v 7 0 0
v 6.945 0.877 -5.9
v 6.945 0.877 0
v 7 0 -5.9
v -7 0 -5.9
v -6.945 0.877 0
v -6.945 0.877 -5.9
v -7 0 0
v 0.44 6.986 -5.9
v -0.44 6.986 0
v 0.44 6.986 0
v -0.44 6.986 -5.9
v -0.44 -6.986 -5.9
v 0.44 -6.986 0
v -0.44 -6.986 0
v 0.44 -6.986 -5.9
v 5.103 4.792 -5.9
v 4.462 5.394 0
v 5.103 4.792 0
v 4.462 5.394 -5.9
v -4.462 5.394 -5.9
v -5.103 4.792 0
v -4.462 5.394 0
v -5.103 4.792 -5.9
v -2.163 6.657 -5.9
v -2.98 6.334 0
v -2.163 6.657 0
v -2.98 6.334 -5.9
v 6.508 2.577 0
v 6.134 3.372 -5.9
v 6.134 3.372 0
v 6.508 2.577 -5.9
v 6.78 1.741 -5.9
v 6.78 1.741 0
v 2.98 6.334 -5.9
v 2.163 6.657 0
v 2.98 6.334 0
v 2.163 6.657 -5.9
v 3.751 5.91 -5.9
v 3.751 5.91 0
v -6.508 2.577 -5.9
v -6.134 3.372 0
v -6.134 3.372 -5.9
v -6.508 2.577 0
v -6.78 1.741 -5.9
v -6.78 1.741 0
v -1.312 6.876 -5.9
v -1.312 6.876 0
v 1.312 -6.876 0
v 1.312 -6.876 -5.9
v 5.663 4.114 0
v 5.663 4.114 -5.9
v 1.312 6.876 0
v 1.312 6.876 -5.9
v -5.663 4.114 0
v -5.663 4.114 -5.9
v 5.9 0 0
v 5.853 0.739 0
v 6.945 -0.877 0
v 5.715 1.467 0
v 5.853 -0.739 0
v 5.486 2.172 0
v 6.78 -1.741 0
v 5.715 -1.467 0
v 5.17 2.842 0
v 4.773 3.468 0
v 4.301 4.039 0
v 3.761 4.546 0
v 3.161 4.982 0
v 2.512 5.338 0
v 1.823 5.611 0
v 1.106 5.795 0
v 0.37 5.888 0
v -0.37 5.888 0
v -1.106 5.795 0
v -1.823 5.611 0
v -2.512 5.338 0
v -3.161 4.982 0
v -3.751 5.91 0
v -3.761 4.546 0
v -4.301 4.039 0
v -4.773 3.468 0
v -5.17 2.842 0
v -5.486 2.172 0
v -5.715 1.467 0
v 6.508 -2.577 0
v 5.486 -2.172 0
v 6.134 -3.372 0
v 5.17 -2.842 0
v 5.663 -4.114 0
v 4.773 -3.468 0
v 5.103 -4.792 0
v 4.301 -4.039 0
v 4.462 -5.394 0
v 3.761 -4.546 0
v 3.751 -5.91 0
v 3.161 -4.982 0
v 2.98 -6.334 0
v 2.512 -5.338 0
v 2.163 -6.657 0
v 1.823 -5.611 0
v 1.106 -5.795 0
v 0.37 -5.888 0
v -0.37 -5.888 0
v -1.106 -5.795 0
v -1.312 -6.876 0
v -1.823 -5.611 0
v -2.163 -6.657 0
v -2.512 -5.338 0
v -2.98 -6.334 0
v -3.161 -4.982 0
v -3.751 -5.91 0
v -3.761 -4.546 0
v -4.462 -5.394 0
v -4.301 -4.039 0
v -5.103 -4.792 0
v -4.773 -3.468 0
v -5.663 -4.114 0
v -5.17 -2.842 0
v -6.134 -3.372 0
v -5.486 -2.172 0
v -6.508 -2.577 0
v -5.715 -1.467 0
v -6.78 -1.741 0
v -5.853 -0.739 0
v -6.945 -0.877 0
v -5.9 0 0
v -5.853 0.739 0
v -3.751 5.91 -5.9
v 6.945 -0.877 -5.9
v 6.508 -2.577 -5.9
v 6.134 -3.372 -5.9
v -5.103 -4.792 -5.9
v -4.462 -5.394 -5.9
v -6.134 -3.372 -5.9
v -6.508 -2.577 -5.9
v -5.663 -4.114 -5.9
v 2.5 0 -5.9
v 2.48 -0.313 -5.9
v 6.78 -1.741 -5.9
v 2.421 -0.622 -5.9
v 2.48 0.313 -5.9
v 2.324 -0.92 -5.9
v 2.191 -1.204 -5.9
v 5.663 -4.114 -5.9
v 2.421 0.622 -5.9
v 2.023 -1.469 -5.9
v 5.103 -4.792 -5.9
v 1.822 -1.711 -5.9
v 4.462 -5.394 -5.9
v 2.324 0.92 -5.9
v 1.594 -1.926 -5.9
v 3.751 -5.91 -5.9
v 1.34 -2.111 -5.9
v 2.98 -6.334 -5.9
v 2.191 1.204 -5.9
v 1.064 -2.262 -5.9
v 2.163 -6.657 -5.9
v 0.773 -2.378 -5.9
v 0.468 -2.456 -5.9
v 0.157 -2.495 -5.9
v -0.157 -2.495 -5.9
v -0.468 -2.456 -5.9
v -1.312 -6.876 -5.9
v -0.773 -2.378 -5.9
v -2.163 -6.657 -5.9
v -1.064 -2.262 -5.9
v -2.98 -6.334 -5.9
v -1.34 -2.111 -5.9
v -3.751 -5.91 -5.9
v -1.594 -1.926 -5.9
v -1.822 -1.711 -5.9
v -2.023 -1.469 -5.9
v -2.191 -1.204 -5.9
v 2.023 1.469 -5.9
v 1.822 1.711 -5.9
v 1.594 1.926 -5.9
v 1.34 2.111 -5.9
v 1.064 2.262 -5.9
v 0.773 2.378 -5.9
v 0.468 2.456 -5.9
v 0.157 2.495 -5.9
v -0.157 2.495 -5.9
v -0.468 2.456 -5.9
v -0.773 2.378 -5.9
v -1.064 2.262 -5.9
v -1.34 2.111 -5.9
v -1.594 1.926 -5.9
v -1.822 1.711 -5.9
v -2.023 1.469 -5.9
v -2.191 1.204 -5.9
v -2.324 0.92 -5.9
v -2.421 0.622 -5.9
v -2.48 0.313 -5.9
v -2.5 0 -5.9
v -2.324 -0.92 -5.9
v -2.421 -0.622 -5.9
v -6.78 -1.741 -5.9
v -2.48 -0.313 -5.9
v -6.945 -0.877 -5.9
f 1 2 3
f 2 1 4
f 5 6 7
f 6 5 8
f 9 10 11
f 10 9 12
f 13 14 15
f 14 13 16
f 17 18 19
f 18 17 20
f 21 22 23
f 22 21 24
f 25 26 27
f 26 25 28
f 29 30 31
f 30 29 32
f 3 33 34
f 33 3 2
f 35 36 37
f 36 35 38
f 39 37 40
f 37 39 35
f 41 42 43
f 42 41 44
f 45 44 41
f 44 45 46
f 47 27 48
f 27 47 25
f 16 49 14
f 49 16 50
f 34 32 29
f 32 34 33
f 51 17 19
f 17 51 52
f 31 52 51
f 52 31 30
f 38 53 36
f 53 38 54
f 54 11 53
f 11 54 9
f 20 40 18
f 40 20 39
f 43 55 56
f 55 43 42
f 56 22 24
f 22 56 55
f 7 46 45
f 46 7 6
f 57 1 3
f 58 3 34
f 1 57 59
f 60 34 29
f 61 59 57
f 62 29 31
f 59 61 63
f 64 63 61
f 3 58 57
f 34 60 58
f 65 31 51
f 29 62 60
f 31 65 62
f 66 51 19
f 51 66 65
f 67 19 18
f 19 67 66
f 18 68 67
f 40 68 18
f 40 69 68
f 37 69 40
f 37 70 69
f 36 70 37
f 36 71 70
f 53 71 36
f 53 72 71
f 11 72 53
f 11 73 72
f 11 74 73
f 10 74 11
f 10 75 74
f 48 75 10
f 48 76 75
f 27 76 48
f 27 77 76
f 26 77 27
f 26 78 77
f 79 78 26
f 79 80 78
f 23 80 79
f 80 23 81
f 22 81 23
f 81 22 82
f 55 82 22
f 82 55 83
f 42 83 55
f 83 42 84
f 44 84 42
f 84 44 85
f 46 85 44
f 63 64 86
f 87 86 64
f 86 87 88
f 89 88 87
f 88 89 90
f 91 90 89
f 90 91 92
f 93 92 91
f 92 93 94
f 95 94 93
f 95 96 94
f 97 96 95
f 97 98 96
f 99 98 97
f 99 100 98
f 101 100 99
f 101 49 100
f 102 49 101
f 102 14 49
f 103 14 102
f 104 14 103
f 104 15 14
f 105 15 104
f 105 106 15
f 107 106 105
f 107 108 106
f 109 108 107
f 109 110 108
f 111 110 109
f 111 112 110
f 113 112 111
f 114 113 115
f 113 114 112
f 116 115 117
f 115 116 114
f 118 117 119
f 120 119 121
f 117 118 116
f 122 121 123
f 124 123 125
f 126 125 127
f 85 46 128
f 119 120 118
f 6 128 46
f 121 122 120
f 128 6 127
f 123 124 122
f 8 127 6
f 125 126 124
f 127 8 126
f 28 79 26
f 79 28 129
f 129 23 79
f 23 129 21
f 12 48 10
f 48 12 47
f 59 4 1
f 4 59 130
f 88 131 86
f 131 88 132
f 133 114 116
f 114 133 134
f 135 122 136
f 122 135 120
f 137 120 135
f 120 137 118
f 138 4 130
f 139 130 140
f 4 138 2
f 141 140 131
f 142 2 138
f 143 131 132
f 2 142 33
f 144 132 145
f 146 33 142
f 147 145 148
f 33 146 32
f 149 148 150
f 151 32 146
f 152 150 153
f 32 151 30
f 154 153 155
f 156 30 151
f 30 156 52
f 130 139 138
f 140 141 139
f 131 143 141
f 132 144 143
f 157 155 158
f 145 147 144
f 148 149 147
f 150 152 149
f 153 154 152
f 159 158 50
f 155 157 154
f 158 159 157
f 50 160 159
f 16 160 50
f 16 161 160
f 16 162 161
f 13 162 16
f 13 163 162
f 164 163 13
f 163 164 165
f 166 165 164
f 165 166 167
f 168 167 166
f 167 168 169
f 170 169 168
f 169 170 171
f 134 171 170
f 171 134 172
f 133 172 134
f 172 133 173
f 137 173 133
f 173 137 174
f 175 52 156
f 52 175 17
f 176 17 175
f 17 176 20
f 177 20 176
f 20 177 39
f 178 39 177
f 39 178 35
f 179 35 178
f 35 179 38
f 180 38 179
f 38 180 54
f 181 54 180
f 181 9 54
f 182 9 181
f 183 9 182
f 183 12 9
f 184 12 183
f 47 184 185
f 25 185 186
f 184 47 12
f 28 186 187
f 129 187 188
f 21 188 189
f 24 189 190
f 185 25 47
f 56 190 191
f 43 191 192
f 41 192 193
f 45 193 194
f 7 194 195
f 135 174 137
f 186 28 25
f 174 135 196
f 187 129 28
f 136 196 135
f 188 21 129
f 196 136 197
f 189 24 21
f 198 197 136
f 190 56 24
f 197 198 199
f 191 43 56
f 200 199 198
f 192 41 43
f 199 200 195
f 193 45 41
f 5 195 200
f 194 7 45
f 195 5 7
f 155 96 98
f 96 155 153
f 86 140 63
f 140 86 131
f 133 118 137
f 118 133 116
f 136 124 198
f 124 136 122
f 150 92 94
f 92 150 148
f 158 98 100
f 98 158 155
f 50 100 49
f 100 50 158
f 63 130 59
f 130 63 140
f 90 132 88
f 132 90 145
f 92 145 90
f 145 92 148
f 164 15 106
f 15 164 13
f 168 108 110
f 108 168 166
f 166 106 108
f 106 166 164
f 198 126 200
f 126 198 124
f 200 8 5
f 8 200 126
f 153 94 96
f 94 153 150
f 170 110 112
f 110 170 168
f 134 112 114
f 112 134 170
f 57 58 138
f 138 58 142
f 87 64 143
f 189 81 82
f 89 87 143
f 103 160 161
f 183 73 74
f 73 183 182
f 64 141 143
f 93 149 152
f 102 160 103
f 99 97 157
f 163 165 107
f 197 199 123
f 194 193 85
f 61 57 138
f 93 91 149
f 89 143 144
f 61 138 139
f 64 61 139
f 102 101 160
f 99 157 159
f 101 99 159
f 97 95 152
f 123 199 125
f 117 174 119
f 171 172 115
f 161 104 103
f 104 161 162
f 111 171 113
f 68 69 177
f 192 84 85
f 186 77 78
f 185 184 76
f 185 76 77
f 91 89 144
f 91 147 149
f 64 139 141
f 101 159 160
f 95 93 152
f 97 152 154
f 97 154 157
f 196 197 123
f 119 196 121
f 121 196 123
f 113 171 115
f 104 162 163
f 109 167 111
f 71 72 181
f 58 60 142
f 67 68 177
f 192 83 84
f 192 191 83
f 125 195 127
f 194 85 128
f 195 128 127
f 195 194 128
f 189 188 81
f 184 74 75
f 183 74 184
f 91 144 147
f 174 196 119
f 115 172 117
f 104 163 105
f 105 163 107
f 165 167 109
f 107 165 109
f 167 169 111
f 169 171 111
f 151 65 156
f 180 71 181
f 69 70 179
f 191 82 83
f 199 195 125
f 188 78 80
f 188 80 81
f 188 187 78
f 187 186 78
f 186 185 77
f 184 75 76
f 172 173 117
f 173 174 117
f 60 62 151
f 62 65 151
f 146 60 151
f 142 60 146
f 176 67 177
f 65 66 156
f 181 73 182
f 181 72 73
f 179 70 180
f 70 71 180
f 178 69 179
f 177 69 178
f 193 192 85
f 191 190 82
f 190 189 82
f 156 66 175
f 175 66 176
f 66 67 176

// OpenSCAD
$fn = 50;


difference() {
	union() {
		translate(v = [0, 0, -5.9000000000]) {
			cylinder(h = 5.9000000000, r = 7.0000000000);
		}
		translate(v = [0, 0, -5.9000000000]) {
			cylinder(h = 5.9000000000, r = 2.8750000000);
		}
	}
	union() {
		translate(v = [0, 0, 0]) {
			rotate(a = [0, 0, 0]) {
				difference() {
					union() {
						#translate(v = [0, 0, -5.9000000000]) {
							cylinder(h = 5.9000000000, r = 2.2500000000);
						}
						#translate(v = [0, 0, -5.9000000000]) {
							cylinder(h = 5.9000000000, r1 = 2.5000000000, r2 = 5.9000000000);
						}
						#translate(v = [0, 0, -5.9000000000]) {
							cylinder(h = 5.9000000000, r = 2.5000000000);
						}
						#translate(v = [0, 0, -5.9000000000]) {
							cylinder(h = 5.9000000000, r = 2.2500000000);
						}
					}
					union();
				}
			}
		}
	}
}
